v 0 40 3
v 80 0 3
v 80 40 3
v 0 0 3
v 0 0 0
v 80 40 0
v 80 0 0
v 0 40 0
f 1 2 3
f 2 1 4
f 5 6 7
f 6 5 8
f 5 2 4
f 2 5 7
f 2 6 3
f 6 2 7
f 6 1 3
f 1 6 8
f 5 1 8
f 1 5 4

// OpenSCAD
// Tiny Land — small test block for trying Bambu Studio's own Cut Tool
// connector types (Dowel, Snap, Plug, its own Dovetail) directly, at
// low cost, instead of burning a full-size part on each experiment.
//
// This isn't a joint design of ours — it's just a plain flat rectangle,
// deliberately featureless, sized like the back-wall-joint-test.scad
// stubs (~real panel thickness) so a cut through it and Bambu's
// generated connector are representative of the actual wall/grate
// panels. Import into Bambu Studio, use the Cut tool to slice it in
// half, try each connector type on the two halves, adjust size/depth/
// tolerance, re-slice, look at the preview — then print whichever pair
// of halves you want to physically test.
//
// thickness/plate_w/plate_h below match back-wall-joint-test.scad's
// stub proportions; bump thickness to 5.08 if you want to test at the
// grate's thickness instead.
thickness = 3;
plate_w   = 80;
plate_h   = 40;

cube([plate_w, plate_h, thickness]);
